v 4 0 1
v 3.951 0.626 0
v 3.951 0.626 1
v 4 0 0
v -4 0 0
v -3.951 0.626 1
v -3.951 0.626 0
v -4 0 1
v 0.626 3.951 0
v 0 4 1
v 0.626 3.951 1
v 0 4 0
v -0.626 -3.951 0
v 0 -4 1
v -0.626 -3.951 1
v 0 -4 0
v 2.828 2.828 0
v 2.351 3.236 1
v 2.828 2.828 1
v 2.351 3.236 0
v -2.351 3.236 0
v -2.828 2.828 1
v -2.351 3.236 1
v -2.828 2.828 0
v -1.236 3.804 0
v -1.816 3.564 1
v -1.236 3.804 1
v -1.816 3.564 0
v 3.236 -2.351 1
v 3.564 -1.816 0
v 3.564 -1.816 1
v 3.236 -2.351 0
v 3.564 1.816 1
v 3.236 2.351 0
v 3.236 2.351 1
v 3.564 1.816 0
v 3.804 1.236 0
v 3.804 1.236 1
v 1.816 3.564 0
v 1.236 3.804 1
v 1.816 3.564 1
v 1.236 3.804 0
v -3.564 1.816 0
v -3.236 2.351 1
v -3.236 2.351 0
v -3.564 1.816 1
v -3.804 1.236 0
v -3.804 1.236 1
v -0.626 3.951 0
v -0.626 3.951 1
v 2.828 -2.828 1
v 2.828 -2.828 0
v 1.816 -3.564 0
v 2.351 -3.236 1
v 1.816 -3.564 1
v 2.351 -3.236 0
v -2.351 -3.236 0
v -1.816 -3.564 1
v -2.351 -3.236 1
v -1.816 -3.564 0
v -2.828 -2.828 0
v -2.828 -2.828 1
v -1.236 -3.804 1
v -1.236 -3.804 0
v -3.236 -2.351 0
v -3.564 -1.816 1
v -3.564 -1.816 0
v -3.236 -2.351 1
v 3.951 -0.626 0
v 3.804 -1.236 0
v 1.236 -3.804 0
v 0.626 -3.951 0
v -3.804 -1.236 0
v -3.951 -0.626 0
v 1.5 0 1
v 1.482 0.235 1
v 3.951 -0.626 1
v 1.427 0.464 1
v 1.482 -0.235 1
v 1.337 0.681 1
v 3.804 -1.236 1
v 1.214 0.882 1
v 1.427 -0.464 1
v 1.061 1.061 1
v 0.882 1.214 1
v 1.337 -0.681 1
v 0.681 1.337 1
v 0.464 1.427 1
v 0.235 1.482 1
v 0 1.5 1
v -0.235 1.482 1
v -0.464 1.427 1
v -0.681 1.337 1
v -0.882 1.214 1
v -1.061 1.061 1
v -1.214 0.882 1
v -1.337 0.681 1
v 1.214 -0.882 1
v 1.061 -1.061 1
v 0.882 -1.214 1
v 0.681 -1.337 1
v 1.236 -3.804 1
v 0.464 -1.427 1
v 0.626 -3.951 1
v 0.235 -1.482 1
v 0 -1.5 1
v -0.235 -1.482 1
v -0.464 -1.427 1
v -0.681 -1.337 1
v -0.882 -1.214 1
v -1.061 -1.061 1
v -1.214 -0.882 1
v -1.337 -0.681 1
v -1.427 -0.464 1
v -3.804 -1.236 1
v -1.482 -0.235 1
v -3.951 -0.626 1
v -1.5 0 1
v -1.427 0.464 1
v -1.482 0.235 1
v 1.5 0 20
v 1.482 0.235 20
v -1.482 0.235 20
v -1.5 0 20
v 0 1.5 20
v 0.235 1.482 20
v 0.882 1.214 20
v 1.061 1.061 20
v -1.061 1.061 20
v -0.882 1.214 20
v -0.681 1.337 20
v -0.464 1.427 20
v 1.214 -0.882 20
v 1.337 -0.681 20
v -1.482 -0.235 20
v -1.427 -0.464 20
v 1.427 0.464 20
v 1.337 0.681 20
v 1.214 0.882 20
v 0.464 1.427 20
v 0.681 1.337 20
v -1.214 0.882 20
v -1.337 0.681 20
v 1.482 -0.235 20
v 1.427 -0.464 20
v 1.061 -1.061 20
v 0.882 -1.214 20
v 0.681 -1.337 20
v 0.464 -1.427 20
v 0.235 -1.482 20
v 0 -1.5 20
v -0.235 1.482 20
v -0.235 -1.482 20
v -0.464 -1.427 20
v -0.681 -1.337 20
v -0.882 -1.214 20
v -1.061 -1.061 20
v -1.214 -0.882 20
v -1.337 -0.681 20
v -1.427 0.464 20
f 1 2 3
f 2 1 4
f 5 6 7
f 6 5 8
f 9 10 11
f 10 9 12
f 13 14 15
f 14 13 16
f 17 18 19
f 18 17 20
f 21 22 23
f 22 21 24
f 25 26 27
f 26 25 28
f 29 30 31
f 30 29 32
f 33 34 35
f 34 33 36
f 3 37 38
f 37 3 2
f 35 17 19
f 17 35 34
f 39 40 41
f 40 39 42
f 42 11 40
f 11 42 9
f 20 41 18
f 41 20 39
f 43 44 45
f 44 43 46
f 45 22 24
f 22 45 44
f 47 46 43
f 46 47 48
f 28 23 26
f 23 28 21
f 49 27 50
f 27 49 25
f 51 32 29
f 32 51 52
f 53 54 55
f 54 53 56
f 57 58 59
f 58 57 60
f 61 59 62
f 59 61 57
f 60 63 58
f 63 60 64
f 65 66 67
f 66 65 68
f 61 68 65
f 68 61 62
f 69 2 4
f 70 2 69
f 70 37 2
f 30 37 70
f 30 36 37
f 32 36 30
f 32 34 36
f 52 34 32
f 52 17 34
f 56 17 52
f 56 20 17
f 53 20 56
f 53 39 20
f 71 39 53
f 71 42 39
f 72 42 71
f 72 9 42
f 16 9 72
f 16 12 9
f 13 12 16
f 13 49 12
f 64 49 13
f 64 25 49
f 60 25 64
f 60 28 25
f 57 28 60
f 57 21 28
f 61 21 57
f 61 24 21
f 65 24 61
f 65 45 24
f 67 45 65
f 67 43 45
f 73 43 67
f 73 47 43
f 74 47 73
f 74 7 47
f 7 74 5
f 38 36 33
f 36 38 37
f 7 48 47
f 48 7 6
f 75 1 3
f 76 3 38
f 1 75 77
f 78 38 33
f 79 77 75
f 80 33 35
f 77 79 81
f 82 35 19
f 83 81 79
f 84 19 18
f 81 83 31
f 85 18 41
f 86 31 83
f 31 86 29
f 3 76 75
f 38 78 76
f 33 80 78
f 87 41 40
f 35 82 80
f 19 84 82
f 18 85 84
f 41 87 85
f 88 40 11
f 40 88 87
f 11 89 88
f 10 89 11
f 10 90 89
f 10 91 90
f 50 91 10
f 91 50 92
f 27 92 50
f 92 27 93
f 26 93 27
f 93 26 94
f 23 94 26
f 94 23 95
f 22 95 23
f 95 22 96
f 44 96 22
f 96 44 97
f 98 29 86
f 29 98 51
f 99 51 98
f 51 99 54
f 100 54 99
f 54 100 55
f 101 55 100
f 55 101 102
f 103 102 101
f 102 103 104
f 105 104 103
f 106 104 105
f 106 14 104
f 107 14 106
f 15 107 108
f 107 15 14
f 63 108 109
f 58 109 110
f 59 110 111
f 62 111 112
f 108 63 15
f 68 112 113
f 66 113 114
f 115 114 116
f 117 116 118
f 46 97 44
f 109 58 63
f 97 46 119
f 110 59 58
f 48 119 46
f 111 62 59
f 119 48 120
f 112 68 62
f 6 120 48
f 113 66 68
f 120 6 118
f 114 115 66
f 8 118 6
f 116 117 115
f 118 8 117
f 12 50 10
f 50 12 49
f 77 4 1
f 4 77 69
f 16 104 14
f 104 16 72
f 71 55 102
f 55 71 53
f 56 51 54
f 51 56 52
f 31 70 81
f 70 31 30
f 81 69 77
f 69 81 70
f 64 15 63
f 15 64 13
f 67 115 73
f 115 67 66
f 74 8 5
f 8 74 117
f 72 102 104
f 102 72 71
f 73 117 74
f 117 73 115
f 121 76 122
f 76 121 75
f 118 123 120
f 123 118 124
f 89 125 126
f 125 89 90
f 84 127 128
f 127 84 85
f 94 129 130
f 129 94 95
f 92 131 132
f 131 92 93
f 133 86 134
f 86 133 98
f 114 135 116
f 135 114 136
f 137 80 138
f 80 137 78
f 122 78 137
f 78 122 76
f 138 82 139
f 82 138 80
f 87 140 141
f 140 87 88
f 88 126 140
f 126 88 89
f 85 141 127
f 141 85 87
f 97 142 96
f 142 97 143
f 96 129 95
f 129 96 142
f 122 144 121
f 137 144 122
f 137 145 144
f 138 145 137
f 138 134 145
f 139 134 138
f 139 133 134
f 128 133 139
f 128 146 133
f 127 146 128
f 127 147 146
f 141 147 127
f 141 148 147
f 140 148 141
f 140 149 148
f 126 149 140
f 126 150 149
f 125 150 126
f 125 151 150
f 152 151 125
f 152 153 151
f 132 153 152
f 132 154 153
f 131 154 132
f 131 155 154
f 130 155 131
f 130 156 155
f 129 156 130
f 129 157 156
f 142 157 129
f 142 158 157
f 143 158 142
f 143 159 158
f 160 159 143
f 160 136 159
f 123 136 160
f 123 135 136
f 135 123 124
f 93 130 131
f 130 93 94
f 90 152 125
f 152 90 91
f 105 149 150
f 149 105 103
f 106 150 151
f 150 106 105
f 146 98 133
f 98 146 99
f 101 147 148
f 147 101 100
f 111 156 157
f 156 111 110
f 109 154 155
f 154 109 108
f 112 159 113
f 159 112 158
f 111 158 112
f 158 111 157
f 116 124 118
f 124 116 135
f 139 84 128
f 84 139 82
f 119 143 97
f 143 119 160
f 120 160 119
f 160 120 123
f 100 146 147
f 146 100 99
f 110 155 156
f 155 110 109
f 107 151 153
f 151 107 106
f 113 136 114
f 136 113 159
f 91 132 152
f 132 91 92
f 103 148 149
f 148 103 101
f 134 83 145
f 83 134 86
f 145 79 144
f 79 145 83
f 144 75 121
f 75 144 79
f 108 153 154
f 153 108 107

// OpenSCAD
height = 20;
head_rad = 8 / 2;
head_height = 1;
neck_rad = 4 / 2;
hole_rad = 3 / 2;
$fn = 40;

// Head, laying flat.
cylinder(h = head_height, r = head_rad);
translate([0, 0, head_height])
{
    // Neck.
    cylinder(h = height - head_height, r = hole_rad);
}
